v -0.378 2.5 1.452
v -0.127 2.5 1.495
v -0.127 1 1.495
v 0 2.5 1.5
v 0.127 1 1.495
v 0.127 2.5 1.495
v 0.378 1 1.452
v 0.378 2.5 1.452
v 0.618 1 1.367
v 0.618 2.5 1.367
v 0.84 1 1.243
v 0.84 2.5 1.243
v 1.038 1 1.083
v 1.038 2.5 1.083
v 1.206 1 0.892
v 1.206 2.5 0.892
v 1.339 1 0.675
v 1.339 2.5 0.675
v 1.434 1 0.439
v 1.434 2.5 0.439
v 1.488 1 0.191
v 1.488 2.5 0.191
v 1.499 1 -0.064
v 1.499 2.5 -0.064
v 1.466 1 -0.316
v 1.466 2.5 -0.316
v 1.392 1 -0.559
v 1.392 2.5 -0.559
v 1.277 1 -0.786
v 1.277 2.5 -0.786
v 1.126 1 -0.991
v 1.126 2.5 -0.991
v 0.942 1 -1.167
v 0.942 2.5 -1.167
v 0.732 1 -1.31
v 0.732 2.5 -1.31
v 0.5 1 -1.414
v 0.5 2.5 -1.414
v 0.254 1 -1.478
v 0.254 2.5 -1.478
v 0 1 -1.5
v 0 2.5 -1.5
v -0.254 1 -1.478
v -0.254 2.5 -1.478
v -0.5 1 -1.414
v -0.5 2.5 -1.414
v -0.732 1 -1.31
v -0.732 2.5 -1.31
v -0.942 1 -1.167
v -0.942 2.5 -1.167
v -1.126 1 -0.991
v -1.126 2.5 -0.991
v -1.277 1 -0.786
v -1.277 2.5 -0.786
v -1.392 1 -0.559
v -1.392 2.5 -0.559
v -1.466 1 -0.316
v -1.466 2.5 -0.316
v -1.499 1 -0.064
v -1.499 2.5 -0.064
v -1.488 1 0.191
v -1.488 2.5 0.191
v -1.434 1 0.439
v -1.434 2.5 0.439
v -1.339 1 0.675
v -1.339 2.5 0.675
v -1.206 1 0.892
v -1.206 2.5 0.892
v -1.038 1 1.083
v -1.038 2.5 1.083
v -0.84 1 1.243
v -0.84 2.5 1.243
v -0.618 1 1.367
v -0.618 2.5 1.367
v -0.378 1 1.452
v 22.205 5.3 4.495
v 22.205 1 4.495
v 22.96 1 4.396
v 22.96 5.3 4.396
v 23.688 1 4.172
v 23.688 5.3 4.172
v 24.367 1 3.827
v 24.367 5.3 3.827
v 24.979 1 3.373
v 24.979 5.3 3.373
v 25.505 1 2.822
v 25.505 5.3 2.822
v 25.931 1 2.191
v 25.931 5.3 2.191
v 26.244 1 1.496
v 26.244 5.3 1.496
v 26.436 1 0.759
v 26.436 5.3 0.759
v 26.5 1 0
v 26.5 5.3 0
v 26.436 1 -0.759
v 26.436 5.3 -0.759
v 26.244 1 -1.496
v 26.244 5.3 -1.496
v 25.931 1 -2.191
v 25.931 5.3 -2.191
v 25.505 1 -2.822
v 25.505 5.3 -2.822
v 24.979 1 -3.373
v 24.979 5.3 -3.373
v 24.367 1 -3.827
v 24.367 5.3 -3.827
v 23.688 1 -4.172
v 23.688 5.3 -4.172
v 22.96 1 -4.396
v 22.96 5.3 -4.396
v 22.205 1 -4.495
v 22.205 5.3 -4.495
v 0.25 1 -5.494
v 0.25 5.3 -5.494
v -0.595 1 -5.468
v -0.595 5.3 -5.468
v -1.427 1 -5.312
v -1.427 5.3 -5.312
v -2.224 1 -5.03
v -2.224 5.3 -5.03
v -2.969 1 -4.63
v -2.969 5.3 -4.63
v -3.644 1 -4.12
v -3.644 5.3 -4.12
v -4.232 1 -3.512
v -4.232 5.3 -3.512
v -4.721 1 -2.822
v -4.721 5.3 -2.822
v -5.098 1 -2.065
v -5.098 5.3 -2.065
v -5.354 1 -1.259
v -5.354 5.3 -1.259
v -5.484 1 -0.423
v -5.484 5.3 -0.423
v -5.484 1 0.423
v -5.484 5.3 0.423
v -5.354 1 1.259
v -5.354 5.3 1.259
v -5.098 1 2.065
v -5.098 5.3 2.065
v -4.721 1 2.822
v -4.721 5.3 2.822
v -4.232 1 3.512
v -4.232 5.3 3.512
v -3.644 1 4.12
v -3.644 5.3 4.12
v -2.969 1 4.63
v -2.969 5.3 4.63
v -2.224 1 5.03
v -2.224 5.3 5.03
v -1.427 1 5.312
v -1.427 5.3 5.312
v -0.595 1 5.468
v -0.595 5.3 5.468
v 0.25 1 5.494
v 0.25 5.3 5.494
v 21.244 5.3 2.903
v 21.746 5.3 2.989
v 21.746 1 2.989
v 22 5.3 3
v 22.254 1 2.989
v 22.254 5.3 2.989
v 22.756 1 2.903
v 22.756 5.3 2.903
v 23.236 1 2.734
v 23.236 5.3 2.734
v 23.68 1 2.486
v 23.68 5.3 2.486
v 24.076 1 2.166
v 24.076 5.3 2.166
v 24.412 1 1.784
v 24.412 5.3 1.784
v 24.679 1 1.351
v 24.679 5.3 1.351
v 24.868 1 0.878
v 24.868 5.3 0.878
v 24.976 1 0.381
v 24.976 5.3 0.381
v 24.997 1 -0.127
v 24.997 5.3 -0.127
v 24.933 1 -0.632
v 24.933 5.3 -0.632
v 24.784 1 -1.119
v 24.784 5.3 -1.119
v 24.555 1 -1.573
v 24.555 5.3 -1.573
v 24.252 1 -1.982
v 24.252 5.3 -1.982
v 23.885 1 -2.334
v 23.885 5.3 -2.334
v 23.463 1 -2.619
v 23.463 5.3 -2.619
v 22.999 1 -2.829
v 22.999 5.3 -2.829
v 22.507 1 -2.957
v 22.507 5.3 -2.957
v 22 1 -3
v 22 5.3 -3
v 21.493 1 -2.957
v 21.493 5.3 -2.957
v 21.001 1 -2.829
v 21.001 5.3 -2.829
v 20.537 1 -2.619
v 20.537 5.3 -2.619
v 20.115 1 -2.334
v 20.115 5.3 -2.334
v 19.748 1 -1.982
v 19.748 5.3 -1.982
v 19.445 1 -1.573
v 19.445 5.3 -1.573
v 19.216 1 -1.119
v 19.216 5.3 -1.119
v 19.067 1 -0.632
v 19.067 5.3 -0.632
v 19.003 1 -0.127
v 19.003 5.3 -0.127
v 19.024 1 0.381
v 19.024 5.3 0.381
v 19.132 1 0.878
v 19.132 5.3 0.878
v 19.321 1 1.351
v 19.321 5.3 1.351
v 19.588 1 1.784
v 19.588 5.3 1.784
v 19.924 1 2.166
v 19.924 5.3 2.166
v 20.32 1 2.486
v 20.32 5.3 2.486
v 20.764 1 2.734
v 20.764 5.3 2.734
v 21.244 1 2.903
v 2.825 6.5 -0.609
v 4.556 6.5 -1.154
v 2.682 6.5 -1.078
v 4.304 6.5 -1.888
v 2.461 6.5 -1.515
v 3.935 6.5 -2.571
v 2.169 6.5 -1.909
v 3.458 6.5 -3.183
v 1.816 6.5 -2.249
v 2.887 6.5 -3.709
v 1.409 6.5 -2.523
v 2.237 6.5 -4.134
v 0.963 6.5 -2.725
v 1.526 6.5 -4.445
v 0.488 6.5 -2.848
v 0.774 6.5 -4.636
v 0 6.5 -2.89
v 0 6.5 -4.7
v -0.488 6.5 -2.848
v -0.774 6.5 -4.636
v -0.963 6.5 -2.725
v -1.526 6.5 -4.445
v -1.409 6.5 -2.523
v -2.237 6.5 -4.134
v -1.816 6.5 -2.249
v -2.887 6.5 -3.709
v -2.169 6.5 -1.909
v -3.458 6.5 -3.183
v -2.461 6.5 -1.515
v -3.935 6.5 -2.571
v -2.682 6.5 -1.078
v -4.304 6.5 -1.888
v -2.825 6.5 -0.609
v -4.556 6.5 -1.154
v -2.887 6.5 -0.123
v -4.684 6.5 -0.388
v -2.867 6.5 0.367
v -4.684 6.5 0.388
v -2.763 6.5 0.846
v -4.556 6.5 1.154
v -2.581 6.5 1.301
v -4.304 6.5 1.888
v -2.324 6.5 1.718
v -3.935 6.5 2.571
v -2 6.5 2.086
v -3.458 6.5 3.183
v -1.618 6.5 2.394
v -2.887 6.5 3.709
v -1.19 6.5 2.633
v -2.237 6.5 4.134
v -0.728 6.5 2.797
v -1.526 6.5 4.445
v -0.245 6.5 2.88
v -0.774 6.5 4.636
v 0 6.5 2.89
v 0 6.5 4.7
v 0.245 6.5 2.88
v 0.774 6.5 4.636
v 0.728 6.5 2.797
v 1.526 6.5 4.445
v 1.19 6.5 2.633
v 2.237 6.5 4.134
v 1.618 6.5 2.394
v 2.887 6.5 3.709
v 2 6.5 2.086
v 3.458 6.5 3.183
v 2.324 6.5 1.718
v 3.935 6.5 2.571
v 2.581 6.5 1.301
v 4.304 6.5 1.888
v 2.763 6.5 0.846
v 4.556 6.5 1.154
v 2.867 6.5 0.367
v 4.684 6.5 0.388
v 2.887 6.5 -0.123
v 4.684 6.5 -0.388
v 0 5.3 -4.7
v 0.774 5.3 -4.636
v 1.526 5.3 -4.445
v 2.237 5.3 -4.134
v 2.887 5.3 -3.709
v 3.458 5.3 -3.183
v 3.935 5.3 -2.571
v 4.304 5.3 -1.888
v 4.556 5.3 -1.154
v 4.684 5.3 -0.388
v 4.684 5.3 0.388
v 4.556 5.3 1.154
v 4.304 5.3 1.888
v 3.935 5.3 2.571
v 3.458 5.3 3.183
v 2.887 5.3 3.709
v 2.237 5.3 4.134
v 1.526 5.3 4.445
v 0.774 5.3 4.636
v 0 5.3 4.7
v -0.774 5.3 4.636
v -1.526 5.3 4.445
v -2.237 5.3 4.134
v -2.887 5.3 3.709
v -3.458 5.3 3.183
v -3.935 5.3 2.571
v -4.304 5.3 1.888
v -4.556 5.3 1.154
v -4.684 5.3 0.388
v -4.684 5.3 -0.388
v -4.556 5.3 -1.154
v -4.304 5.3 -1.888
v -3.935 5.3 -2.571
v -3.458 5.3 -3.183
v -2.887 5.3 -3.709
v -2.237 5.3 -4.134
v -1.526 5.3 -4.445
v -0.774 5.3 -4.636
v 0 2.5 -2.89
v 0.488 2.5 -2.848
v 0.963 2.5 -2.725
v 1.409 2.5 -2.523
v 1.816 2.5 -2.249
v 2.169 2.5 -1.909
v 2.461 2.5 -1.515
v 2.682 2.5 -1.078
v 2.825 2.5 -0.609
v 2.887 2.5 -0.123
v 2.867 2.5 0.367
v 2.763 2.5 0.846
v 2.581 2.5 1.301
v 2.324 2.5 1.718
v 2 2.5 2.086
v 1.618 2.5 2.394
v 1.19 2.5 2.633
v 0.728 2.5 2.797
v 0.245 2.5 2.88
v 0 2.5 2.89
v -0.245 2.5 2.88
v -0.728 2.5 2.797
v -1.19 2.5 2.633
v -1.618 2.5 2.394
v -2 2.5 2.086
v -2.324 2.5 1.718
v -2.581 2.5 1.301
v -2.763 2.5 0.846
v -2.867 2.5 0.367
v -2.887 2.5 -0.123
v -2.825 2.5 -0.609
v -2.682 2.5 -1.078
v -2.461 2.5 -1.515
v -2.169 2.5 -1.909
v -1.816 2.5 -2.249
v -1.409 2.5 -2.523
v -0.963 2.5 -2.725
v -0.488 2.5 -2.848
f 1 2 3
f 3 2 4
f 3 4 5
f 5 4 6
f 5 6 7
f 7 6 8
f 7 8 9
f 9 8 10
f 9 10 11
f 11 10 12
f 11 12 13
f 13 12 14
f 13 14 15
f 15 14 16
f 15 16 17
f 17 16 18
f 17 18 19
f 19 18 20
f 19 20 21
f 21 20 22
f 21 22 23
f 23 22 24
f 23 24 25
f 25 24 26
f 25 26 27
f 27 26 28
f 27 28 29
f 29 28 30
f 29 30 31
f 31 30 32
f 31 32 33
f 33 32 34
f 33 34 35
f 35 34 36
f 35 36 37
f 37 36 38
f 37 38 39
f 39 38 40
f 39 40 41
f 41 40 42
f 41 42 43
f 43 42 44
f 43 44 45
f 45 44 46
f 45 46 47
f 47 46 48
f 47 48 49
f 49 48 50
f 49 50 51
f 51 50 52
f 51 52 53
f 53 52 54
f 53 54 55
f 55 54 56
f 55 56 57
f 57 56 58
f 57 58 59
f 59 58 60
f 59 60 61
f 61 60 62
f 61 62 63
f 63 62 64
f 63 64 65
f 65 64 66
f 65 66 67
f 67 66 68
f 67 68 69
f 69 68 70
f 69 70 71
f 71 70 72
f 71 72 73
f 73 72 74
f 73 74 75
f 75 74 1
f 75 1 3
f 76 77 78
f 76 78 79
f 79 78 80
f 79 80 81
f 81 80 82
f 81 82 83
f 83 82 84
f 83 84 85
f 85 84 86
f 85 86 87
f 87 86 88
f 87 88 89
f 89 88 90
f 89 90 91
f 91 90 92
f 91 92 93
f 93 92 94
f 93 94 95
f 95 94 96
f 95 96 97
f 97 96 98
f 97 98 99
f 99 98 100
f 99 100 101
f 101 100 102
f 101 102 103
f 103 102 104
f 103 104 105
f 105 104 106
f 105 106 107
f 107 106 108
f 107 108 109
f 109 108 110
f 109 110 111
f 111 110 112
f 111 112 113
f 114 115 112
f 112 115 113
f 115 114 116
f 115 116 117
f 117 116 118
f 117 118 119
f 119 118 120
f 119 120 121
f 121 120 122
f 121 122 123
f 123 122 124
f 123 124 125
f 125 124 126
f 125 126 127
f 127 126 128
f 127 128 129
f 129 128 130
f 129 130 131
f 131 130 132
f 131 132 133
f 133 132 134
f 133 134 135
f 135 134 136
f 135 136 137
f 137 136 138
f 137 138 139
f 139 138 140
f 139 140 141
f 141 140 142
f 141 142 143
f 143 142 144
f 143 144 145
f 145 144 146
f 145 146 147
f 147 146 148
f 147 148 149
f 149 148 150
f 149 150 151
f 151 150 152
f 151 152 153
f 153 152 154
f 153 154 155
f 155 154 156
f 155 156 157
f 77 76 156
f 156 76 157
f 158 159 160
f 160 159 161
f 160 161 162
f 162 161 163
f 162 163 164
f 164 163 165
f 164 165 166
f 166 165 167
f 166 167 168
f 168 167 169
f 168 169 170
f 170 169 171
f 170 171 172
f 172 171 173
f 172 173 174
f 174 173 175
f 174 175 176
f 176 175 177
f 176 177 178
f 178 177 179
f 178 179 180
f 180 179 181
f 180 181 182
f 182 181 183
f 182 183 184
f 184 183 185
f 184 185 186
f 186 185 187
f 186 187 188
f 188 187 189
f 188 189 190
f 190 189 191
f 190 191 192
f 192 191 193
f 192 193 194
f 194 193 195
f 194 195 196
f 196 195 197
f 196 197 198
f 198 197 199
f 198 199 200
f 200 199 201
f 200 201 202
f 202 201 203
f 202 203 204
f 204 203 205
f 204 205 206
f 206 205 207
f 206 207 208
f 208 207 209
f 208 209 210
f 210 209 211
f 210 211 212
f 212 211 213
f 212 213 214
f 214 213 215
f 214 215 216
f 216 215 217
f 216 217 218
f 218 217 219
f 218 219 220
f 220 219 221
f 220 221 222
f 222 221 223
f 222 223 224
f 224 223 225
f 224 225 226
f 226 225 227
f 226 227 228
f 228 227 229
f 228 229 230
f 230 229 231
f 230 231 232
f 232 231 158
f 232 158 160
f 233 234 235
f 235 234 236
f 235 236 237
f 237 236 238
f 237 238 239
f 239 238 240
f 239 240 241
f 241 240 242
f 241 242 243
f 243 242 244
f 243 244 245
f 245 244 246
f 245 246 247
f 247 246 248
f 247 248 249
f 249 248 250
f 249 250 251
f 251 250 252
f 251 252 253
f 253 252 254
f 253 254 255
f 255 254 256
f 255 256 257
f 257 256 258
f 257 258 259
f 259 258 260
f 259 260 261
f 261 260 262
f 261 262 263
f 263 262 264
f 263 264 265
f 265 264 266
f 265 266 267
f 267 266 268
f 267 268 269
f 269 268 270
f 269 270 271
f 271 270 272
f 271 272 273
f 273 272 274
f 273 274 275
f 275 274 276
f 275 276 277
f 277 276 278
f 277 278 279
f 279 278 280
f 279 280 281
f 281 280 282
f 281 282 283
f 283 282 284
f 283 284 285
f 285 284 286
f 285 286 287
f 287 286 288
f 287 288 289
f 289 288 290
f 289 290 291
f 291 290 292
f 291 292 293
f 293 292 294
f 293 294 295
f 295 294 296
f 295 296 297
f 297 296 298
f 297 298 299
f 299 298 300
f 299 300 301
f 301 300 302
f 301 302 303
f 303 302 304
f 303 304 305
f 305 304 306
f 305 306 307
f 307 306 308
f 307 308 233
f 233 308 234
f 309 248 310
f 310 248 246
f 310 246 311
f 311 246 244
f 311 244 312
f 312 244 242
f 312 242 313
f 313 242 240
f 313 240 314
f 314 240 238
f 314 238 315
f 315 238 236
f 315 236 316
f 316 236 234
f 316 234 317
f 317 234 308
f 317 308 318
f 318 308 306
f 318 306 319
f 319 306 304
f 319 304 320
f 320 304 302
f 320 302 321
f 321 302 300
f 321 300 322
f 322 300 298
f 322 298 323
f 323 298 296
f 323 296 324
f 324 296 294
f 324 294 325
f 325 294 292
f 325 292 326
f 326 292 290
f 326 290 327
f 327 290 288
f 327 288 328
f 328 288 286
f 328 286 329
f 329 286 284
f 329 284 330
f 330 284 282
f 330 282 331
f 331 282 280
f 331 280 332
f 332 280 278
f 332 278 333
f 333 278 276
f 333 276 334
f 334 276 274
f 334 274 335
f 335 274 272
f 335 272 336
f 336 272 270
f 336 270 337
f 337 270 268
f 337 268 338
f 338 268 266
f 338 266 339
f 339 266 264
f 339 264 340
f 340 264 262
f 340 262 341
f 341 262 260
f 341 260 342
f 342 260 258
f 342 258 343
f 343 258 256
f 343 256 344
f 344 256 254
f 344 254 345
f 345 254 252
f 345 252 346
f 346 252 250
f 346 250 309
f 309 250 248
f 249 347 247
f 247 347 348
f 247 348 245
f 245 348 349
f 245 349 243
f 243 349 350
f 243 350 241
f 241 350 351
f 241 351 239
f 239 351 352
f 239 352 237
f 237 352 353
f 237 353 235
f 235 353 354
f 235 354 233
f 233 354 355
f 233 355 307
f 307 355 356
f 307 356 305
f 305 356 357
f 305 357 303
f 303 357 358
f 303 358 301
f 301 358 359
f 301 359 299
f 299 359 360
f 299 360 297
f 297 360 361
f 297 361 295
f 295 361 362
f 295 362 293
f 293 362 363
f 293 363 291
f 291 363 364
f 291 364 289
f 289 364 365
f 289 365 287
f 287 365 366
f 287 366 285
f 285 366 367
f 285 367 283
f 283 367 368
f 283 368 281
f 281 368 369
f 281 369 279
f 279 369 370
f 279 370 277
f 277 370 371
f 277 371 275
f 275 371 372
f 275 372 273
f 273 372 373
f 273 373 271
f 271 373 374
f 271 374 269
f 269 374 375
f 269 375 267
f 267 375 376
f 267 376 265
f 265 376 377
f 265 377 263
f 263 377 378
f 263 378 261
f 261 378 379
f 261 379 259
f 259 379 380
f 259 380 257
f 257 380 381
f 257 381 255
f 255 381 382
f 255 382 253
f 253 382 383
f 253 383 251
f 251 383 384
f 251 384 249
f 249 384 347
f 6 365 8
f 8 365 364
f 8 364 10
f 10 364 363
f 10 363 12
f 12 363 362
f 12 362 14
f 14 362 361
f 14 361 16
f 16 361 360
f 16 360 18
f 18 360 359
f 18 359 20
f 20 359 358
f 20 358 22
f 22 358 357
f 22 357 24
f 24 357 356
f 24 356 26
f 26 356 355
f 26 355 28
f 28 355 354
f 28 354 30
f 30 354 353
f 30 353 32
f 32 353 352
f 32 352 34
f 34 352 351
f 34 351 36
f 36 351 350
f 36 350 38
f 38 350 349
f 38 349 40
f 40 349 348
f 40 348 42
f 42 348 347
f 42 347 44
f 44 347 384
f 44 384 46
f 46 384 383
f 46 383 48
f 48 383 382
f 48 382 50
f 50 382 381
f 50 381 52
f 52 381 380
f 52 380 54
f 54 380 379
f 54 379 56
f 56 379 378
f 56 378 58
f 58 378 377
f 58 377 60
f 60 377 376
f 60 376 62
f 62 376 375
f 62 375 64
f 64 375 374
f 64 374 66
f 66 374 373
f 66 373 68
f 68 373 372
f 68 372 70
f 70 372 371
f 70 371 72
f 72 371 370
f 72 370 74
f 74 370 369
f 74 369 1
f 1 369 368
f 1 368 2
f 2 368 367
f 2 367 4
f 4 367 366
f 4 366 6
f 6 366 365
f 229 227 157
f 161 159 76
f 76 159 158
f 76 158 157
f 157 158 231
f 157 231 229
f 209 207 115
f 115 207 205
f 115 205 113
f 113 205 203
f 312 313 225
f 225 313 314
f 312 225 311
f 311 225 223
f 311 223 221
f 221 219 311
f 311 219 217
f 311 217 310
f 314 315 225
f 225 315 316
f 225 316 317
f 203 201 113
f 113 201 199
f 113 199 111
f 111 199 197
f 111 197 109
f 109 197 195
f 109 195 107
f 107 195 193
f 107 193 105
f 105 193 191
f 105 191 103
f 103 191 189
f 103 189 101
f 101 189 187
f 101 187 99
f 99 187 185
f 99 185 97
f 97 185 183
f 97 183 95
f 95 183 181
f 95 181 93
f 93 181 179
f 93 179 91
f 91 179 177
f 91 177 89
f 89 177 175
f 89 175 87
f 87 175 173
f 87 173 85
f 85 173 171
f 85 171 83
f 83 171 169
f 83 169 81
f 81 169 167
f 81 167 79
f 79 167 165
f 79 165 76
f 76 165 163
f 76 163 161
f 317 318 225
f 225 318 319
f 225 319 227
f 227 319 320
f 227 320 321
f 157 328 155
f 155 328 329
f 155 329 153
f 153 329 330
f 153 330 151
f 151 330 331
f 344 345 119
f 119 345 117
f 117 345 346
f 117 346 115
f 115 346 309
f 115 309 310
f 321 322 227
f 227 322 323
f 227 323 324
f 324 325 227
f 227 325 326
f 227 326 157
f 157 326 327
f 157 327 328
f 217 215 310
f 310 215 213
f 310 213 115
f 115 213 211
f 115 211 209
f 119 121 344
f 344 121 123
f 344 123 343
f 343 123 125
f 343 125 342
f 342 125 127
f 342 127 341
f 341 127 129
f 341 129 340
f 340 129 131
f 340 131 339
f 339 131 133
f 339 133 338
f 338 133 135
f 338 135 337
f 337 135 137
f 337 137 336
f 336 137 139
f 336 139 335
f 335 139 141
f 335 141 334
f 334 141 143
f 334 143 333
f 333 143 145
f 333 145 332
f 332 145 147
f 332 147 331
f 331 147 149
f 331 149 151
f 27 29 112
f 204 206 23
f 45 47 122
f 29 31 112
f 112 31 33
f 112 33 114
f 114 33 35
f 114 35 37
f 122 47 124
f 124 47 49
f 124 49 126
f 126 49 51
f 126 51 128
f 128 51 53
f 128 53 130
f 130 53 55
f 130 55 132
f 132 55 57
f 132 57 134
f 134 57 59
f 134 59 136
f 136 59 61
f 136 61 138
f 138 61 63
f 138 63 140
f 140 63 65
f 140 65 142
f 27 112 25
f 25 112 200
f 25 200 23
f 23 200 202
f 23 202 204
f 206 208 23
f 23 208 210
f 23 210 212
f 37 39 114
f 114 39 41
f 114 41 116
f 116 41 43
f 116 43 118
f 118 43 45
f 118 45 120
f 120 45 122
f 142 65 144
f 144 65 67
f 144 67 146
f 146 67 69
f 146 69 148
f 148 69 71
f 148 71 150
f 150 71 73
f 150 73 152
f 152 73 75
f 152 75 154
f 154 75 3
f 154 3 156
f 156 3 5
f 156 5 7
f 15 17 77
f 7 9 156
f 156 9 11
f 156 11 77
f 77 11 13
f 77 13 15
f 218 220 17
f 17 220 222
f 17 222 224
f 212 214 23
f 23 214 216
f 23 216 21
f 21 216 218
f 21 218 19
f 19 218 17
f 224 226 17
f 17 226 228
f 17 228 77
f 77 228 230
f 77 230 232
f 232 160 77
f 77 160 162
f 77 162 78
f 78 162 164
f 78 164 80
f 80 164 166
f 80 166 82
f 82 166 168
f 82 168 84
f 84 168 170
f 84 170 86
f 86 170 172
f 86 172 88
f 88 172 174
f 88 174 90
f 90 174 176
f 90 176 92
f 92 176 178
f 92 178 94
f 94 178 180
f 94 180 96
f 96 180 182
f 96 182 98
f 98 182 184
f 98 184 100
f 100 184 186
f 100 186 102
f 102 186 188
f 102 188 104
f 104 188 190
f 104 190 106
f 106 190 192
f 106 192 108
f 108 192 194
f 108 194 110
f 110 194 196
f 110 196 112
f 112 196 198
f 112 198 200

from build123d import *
from build123d.topology import SkipClean

# Parameters (mm, degrees)
SKETCH1_R           = 1.5
SKETCH1_R_2         = 3
BOSS_EXTRUDE1_DEPTH = 3.5
SKETCH2_R           = 4.7
SKETCH2_R_2         = 2.89
BOSS_EXTRUDE2_DEPTH = 3
CUT_EXTRUDE1_START  = -1
SKETCH3_R           = 2.89
CUT_EXTRUDE1_DEPTH  = 1
SKETCH4_R           = 3
SKETCH4_R_2         = 4.7
BOSS_EXTRUDE3_DEPTH = 1.8
CUT_EXTRUDE2_DEPTH  = 1


with BuildPart() as part:
    # Sketch1 → Boss-Extrude1 (new body)
    with BuildSketch(Plane(origin=(0, 0, 0), x_dir=(1, 0, 0), z_dir=(0, 1, 0))):
        with BuildLine():
            Line((0.25, 5.494315244), (22.204545455, 4.495348836))
            ThreePointArc((22.204545455, 4.495348836), (26.5, 0), (22.204545455, -4.495348836))
            Line((22.204545455, -4.495348836), (0.25, -5.494315244))
            ThreePointArc((0.25, -5.494315244), (-5.5, 0), (0.25, 5.494315244))
        make_face()
        with Locations(Location((0, 0, 0), (0, 0, 270))):
            Circle(SKETCH1_R, mode=Mode.SUBTRACT)
        with Locations(Location((22, 0, 0), (0, 0, 270))):
            Circle(SKETCH1_R_2, mode=Mode.SUBTRACT)
    extrude(amount=BOSS_EXTRUDE1_DEPTH)

    # Sketch2 → Boss-Extrude2 (add)
    with BuildSketch(Plane(origin=(0, 3.5, 0), x_dir=(1, 0, 0), z_dir=(0, 1, 0))):
        with Locations(Location((0, 0, 0), (0, 0, 90))):
            Circle(SKETCH2_R)
        with Locations(Location((0, 0, 0), (0, 0, 270))):
            Circle(SKETCH2_R_2, mode=Mode.SUBTRACT)
    extrude(amount=BOSS_EXTRUDE2_DEPTH)

    # Sketch3 → Cut-Extrude1 (cut)
    with BuildSketch(Plane(origin=(0, 3.5, 0), x_dir=(1, 0, 0), z_dir=(0, 1, 0)).offset(CUT_EXTRUDE1_START)):
        with Locations(Location((0, 0, 0), (0, 0, 270))):
            Circle(SKETCH3_R)
    extrude(amount=CUT_EXTRUDE1_DEPTH, mode=Mode.SUBTRACT)

    # Sketch4 → Boss-Extrude3 (add)
    with SkipClean():  # the faces are left unmerged after this step: merging them gives an invalid solid
        with BuildSketch(Plane(origin=(0, 3.5, 0), x_dir=(1, 0, 0), z_dir=(0, 1, 0))):
            with BuildLine():
                Line((0.25, -5.494315244), (22.204545455, -4.495348836))
                ThreePointArc((22.204545455, -4.495348836), (26.5, 0), (22.204545455, 4.495348836))
                Line((22.204545455, 4.495348836), (0.25, 5.494315244))
                ThreePointArc((0.25, 5.494315244), (-5.5, 0), (0.25, -5.494315244))
            make_face()
            with Locations(Location((22, 0, 0), (0, 0, 270))):
                Circle(SKETCH4_R, mode=Mode.SUBTRACT)
            with Locations(Location((0, 0, 0), (0, 0, 270))):
                Circle(SKETCH4_R_2, mode=Mode.SUBTRACT)
        extrude(amount=BOSS_EXTRUDE3_DEPTH)

    # Sketch5 → Cut-Extrude2 (cut)
    with SkipClean():  # the faces are left unmerged after this step: merging them gives an invalid solid
        with BuildSketch(Plane.XZ):
            with BuildLine():
                Line((22.204545455, 4.495348836), (0.25, 5.494315244))
                ThreePointArc((0.25, 5.494315244), (-5.5, 0), (0.25, -5.494315244))
                Line((0.25, -5.494315244), (22.204545455, -4.495348836))
                ThreePointArc((22.204545455, -4.495348836), (26.5, 0), (22.204545455, 4.495348836))
            make_face()
        extrude(amount=-CUT_EXTRUDE2_DEPTH, mode=Mode.SUBTRACT)


solid = part.part
